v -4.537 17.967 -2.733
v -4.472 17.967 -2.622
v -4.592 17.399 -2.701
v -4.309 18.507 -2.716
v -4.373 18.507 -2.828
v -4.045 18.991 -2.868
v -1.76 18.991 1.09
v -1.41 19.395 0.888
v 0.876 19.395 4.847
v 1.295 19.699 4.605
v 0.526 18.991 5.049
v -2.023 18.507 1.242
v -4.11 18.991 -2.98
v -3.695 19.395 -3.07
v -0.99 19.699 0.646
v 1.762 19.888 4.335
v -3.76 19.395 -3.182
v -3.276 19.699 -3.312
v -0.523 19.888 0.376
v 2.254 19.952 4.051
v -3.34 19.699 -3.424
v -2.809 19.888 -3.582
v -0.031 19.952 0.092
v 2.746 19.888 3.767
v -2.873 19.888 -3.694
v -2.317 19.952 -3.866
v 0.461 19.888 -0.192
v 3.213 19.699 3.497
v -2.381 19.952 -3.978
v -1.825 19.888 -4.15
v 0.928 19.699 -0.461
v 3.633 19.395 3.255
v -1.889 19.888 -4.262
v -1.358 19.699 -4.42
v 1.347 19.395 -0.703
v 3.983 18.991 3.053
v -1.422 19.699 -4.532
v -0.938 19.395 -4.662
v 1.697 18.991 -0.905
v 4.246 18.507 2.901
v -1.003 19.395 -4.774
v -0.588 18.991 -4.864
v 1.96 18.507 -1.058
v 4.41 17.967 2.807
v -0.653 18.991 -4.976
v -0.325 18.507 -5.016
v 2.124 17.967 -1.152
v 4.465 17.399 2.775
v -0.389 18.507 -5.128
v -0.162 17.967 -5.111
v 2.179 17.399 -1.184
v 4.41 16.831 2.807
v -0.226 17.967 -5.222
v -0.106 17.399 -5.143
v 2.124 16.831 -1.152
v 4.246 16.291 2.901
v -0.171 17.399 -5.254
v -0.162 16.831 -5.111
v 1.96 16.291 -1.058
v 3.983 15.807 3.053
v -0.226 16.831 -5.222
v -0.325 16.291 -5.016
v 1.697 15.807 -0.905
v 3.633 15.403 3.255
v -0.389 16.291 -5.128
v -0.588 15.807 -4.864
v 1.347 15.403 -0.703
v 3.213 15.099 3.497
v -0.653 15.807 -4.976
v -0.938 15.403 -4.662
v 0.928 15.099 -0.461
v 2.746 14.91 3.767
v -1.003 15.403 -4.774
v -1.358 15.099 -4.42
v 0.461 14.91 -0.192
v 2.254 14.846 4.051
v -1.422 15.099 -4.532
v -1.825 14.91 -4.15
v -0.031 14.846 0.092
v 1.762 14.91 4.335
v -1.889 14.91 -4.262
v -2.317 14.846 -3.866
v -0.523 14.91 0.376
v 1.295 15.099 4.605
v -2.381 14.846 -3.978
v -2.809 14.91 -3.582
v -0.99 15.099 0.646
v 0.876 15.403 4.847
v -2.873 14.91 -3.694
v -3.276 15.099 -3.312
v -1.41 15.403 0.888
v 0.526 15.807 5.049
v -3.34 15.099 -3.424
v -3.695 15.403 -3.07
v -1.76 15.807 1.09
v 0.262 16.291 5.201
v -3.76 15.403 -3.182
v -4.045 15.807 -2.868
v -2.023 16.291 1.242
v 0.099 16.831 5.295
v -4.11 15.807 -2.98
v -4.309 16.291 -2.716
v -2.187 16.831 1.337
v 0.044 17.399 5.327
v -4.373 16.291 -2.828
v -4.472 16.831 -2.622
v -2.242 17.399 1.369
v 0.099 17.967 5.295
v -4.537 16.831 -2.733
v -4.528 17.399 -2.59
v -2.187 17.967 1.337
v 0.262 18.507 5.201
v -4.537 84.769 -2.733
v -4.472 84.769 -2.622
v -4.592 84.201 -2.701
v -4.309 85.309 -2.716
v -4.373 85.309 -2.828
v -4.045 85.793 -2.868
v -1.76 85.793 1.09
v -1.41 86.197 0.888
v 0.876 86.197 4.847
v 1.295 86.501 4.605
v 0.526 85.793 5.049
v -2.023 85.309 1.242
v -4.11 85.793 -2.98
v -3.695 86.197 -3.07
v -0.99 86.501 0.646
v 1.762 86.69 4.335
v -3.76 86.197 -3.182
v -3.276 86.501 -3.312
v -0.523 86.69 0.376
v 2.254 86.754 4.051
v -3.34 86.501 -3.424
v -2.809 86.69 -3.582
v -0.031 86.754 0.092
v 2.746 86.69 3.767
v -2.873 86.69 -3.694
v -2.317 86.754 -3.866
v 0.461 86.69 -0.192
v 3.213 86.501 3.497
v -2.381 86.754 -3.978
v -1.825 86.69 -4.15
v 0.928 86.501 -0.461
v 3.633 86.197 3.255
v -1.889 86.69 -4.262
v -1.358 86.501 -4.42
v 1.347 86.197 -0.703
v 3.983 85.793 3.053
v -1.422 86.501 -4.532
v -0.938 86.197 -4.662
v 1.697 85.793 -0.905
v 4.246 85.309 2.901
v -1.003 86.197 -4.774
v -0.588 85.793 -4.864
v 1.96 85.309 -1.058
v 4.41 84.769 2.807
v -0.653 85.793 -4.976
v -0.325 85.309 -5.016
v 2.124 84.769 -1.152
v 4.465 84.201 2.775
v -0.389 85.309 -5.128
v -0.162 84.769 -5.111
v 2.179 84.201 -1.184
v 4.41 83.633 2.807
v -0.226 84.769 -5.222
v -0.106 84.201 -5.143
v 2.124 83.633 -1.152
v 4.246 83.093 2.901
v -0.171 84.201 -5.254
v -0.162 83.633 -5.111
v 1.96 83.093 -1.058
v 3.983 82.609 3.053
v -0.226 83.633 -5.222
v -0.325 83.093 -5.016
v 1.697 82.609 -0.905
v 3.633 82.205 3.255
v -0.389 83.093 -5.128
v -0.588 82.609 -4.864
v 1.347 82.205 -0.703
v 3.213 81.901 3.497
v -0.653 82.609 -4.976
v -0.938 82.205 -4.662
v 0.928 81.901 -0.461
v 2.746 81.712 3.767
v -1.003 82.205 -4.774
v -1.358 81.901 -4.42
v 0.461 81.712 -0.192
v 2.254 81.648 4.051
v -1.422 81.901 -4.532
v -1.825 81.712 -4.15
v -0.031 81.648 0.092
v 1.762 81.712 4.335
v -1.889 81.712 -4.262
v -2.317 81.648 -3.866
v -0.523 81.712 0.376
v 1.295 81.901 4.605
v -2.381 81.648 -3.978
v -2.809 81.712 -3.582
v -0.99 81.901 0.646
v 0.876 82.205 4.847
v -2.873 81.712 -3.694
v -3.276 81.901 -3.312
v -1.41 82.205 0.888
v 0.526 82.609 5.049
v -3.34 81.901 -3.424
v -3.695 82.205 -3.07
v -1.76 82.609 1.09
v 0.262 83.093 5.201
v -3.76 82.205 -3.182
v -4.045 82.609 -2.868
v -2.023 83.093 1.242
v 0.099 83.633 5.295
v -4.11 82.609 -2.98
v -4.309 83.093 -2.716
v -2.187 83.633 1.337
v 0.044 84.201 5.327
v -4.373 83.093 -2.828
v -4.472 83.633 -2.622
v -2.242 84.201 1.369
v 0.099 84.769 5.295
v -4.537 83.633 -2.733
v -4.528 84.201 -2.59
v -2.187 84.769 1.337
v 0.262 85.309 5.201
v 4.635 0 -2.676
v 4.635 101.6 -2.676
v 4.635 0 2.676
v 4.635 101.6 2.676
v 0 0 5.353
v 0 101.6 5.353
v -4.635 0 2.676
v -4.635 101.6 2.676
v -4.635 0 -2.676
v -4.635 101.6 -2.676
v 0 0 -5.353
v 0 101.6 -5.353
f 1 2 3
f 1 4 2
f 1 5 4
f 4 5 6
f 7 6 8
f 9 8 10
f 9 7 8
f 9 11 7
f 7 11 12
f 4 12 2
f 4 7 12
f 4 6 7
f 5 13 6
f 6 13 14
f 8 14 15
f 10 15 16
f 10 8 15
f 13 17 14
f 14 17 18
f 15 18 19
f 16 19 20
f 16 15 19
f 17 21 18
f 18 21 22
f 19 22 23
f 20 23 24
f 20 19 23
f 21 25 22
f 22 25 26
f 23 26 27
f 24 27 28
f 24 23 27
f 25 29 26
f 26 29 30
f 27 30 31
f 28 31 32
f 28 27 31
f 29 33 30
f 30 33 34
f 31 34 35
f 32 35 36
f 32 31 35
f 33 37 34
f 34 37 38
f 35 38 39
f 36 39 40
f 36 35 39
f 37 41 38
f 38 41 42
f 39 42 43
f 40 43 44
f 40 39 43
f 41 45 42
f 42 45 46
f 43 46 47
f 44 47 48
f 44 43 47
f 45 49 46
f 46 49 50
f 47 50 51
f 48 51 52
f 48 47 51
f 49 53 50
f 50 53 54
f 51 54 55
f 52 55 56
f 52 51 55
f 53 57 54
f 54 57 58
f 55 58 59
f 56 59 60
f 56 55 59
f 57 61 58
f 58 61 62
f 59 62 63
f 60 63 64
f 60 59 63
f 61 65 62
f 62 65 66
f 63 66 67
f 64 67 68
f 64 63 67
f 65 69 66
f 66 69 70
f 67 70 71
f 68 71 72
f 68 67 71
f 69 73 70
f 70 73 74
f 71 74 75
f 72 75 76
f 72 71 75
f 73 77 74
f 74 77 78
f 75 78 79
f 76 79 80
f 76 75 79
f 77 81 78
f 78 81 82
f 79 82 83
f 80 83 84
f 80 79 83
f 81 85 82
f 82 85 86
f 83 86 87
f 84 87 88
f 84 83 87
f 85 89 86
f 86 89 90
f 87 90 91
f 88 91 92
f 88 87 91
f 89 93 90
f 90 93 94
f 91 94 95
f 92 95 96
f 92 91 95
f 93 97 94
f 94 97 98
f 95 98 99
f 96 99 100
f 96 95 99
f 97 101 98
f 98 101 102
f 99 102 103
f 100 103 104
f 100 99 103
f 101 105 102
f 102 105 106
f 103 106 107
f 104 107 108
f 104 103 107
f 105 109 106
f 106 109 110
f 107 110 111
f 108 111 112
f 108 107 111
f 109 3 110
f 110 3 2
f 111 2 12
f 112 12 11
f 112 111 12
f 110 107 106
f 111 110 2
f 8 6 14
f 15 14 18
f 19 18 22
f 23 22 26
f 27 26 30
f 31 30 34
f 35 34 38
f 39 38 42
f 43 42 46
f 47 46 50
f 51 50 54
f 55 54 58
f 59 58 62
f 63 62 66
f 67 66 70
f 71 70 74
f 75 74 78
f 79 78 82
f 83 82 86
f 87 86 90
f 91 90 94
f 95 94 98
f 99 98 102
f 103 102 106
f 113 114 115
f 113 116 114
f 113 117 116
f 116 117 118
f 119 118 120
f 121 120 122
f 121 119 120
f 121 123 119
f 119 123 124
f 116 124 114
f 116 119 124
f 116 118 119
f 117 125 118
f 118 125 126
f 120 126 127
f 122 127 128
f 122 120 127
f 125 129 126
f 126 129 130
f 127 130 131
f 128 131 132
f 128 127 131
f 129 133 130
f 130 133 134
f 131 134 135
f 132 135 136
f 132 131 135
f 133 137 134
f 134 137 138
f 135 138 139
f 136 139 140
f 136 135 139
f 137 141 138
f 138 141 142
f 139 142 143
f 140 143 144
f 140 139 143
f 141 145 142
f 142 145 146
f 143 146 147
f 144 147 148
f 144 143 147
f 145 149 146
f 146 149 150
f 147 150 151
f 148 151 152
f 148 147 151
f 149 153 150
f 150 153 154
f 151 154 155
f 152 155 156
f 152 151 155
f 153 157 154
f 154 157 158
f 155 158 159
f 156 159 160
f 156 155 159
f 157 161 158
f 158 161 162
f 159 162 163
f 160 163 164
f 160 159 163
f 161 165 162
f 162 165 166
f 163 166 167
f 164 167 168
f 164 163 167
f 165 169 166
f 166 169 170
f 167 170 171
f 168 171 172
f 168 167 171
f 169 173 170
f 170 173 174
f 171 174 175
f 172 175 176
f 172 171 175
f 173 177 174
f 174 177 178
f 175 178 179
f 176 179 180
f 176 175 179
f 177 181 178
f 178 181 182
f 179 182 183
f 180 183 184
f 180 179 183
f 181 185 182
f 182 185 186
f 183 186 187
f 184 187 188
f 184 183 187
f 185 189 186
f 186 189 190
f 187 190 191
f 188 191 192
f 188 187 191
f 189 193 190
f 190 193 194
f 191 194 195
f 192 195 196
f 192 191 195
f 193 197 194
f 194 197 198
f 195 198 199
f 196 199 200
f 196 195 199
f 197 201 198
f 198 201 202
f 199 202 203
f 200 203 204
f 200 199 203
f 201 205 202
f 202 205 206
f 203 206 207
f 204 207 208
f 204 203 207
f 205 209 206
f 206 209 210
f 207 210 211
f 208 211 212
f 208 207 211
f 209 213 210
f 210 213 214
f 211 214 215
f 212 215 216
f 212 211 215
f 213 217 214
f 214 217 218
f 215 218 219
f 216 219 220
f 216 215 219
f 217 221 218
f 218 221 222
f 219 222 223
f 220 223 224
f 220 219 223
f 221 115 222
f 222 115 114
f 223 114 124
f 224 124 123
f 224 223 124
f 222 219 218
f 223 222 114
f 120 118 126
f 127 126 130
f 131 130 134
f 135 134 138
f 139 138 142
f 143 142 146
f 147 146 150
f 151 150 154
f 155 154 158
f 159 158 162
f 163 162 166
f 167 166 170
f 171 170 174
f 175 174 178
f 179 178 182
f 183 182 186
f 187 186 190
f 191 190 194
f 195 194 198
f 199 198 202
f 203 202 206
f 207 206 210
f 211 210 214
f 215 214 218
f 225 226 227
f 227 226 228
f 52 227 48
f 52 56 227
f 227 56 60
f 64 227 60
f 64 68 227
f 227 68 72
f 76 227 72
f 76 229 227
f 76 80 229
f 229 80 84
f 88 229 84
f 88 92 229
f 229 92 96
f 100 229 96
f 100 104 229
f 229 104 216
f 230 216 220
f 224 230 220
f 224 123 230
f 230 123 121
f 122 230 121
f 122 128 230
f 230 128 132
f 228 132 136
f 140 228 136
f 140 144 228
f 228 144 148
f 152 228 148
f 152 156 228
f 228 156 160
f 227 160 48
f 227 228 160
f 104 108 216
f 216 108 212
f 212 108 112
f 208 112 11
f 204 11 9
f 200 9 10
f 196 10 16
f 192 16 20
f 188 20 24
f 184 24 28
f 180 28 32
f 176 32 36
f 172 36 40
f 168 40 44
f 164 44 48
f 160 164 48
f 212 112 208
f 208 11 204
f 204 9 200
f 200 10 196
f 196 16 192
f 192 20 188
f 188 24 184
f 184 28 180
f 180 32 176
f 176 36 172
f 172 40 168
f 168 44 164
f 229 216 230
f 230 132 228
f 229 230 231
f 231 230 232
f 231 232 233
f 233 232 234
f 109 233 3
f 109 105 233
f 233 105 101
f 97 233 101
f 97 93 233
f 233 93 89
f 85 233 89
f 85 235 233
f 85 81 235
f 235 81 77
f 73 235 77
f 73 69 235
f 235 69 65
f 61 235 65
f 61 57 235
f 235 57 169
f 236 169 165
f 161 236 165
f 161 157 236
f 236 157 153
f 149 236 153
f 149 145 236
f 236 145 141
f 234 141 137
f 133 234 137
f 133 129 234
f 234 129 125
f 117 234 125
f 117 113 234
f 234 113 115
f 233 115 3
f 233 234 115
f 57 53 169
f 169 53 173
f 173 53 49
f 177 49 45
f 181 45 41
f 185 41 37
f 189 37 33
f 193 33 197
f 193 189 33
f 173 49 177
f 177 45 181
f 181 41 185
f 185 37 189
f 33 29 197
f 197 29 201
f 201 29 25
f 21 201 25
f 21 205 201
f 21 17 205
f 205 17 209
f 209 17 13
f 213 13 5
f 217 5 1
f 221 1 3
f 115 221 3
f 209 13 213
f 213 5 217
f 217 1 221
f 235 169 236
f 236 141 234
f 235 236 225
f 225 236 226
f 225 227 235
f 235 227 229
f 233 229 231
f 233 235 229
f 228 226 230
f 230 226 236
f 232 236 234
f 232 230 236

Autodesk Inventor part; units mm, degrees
ref_plane "YZ Plane" through (0, 0, 0) normal (1, 0, 0) x (0, 1, 0)
ref_plane "XZ Plane" through (0, 0, 0) normal (0, 1, 0) x (-1, 0, 0)
ref_plane "XY Plane" through (0, 0, 0) normal (0, 0, 1) x (1, 0, 0)
sketch "Sketch1" plane through (0, 0, 0) normal (0, 1, 0) x (-1, 0, 0)
  line L0 (0, -5.3526) -> (-4.6355, -2.6763)
  line L1 (-4.6355, -2.6763) -> (-4.6355, 2.6763)
  line L2 (-4.6355, 2.6763) -> (0, 5.3526)
  line L3 (0, 5.3526) -> (4.6355, 2.6763)
  line L4 (4.6355, 2.6763) -> (4.6355, -2.6763)
  line L5 (4.6355, -2.6763) -> (0, -5.3526)
  point P0 (0, 0)
  point P1 (0, 0)
  dimension "d0" = 9.271
extrude "Extrusion1" add sketch "Sketch1" along normal blind 101.6
sketch "Sketch2" plane through (4.6355, 0, 2.6763) normal (0.5, 0, 0.866) x (0.866, 0, -0.5)
  line L0 (-5.3526, 101.6) -> (0, 101.6) projected
  line L1 (0, 0) -> (-5.3526, 0) projected
  point P0 (-2.6763, 0)
  point P1 (-2.7496, 17.399)
  point P2 (-2.7496, 84.201)
  dimension "d3" = 17.399
  dimension "d4" = 17.399
hole "Hole1" at (2.2543, 17.399, 4.0511) at (2.2543, 84.201, 4.0511) direction (-0.5, 0, -0.866) diameter 5.1054 end through all clearance for "Flat Head Machine Screw (82)" size "#10" standard "Ansi Unified Screw Threads"
equation "\"d3\" = depthForHexBolt"
equation "\"d4\" = depthForHexBolt"
equation "\"printingError\" = 0.254"
equation "\"depthForHexBolt\" = 17.399"
properties part number "3_8_plasticPipe"
